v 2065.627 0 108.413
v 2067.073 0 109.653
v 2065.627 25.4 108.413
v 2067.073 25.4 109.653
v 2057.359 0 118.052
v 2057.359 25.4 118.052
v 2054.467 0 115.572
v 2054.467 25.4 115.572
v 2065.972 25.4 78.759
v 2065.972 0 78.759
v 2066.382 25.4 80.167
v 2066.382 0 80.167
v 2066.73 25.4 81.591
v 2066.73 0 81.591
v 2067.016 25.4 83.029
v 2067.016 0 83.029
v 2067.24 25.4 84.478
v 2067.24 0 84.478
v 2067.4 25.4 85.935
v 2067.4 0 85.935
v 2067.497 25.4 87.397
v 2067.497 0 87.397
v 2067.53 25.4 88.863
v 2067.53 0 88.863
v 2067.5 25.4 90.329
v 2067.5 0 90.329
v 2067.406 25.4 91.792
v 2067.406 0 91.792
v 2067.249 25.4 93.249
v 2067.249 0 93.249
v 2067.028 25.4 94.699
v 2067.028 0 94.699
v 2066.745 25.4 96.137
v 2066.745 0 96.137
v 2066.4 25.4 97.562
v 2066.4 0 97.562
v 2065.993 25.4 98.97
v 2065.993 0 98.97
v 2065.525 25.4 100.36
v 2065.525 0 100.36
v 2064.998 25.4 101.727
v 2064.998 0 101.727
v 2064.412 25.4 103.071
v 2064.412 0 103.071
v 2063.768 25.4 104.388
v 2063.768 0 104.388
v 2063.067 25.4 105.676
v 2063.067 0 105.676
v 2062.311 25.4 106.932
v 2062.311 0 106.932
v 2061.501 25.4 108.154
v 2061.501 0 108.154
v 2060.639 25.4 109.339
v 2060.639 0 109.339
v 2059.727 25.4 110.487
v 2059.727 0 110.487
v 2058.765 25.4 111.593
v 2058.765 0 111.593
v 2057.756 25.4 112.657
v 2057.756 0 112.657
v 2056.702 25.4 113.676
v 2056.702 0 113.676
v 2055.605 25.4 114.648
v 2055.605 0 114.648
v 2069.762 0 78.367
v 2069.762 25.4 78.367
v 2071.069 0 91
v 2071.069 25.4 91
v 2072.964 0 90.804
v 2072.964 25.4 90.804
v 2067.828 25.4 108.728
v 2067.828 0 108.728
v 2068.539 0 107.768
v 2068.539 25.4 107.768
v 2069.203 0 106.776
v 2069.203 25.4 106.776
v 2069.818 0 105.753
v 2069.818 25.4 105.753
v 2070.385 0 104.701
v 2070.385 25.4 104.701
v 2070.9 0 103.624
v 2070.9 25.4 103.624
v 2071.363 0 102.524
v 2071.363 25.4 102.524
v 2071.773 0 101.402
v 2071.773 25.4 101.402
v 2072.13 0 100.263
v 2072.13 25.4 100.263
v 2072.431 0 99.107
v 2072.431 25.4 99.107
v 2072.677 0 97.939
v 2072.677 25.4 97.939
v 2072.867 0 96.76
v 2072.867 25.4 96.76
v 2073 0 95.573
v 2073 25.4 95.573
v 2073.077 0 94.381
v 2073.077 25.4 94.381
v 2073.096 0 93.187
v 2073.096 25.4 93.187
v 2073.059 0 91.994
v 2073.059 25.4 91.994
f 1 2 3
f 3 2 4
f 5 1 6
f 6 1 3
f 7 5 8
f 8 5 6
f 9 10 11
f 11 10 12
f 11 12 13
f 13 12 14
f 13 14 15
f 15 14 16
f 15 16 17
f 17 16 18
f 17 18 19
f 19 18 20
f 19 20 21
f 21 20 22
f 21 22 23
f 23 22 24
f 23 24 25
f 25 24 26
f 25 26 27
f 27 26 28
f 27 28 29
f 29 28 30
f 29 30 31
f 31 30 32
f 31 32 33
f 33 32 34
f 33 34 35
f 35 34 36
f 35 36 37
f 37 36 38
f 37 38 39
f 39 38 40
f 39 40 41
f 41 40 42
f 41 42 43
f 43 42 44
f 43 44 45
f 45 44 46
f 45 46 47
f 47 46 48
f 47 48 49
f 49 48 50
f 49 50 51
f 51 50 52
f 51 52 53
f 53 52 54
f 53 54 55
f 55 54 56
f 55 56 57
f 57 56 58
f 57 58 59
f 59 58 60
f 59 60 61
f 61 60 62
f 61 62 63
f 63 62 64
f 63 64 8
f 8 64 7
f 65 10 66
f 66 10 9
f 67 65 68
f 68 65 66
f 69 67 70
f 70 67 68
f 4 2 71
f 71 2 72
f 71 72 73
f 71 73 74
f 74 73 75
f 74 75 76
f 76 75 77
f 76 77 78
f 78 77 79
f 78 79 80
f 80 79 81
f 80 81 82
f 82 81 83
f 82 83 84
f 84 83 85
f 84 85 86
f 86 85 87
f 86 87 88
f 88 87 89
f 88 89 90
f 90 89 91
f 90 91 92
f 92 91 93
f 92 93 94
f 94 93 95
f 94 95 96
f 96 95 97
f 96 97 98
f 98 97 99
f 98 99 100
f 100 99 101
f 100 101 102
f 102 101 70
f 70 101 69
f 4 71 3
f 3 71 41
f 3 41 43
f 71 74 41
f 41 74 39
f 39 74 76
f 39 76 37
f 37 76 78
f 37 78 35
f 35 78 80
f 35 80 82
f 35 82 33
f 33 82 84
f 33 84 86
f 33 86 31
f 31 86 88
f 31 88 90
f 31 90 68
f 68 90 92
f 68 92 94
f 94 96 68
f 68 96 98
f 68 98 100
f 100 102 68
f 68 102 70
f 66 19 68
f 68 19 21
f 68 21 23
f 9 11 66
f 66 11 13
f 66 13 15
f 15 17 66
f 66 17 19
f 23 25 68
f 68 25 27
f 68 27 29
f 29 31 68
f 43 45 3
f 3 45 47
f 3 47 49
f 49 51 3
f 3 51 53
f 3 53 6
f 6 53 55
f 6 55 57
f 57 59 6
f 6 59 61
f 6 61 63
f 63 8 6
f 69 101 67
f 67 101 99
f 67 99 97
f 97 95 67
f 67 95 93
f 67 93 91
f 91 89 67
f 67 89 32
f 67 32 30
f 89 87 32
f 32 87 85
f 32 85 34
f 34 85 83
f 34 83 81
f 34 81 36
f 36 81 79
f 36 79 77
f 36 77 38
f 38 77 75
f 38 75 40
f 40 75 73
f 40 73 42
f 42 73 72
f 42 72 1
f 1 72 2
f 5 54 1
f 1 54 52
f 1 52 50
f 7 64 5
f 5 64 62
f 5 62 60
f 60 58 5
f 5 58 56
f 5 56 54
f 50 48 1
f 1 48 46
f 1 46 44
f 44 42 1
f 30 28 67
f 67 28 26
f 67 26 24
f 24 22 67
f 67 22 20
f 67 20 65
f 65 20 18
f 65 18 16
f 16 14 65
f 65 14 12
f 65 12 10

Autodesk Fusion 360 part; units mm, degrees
sketch "Front Most Corner" plane through (0, 0, 0) normal (0, 1, 0) x (1, 0, 0)
  circle A0 centre (2048.0968, -93.3767) radius 25 construction
  line L0 (1842.0683, -371.981) -> (2073.5797, -102.0665)
  line L1 (2073.9927, -100.7451) -> (2060.9213, 25.5804)
  line L2 (2072.964, -90.8036) -> (2048.0968, -93.3767) construction
  line L3 (2072.964, -90.8036) -> (2071.0691, -90.9997)
  line L4 (2071.0691, -90.9997) -> (2069.762, -78.3671)
  line L5 (2069.762, -78.3671) -> (2065.9722, -78.7593)
  line L6 (2067.0728, -109.6528) -> (2065.6268, -108.4126)
  line L7 (2065.6268, -108.4126) -> (2057.3585, -118.0524)
  arc A1 (2067.0728, -109.6528) -> (2072.964, -90.8036) centre (2048.0968, -93.3767) ccw
  line L8 (2057.3585, -118.0524) -> (2054.4666, -115.5719)
  line L9 (2048.0968, -93.3767) -> (2071.9585, -100.8346) construction
  arc A2 (2054.4666, -115.5719) -> (2065.9722, -78.7593) centre (2033.7666, -88.8979) ccw
  point P0 (2065.993, -98.9701)
  dimension "d1" = 50
  dimension "d2" = 25
  dimension "d3" = 25
extrude "Extrude1" add sketch "Front Most Corner" along normal blind 25.4
